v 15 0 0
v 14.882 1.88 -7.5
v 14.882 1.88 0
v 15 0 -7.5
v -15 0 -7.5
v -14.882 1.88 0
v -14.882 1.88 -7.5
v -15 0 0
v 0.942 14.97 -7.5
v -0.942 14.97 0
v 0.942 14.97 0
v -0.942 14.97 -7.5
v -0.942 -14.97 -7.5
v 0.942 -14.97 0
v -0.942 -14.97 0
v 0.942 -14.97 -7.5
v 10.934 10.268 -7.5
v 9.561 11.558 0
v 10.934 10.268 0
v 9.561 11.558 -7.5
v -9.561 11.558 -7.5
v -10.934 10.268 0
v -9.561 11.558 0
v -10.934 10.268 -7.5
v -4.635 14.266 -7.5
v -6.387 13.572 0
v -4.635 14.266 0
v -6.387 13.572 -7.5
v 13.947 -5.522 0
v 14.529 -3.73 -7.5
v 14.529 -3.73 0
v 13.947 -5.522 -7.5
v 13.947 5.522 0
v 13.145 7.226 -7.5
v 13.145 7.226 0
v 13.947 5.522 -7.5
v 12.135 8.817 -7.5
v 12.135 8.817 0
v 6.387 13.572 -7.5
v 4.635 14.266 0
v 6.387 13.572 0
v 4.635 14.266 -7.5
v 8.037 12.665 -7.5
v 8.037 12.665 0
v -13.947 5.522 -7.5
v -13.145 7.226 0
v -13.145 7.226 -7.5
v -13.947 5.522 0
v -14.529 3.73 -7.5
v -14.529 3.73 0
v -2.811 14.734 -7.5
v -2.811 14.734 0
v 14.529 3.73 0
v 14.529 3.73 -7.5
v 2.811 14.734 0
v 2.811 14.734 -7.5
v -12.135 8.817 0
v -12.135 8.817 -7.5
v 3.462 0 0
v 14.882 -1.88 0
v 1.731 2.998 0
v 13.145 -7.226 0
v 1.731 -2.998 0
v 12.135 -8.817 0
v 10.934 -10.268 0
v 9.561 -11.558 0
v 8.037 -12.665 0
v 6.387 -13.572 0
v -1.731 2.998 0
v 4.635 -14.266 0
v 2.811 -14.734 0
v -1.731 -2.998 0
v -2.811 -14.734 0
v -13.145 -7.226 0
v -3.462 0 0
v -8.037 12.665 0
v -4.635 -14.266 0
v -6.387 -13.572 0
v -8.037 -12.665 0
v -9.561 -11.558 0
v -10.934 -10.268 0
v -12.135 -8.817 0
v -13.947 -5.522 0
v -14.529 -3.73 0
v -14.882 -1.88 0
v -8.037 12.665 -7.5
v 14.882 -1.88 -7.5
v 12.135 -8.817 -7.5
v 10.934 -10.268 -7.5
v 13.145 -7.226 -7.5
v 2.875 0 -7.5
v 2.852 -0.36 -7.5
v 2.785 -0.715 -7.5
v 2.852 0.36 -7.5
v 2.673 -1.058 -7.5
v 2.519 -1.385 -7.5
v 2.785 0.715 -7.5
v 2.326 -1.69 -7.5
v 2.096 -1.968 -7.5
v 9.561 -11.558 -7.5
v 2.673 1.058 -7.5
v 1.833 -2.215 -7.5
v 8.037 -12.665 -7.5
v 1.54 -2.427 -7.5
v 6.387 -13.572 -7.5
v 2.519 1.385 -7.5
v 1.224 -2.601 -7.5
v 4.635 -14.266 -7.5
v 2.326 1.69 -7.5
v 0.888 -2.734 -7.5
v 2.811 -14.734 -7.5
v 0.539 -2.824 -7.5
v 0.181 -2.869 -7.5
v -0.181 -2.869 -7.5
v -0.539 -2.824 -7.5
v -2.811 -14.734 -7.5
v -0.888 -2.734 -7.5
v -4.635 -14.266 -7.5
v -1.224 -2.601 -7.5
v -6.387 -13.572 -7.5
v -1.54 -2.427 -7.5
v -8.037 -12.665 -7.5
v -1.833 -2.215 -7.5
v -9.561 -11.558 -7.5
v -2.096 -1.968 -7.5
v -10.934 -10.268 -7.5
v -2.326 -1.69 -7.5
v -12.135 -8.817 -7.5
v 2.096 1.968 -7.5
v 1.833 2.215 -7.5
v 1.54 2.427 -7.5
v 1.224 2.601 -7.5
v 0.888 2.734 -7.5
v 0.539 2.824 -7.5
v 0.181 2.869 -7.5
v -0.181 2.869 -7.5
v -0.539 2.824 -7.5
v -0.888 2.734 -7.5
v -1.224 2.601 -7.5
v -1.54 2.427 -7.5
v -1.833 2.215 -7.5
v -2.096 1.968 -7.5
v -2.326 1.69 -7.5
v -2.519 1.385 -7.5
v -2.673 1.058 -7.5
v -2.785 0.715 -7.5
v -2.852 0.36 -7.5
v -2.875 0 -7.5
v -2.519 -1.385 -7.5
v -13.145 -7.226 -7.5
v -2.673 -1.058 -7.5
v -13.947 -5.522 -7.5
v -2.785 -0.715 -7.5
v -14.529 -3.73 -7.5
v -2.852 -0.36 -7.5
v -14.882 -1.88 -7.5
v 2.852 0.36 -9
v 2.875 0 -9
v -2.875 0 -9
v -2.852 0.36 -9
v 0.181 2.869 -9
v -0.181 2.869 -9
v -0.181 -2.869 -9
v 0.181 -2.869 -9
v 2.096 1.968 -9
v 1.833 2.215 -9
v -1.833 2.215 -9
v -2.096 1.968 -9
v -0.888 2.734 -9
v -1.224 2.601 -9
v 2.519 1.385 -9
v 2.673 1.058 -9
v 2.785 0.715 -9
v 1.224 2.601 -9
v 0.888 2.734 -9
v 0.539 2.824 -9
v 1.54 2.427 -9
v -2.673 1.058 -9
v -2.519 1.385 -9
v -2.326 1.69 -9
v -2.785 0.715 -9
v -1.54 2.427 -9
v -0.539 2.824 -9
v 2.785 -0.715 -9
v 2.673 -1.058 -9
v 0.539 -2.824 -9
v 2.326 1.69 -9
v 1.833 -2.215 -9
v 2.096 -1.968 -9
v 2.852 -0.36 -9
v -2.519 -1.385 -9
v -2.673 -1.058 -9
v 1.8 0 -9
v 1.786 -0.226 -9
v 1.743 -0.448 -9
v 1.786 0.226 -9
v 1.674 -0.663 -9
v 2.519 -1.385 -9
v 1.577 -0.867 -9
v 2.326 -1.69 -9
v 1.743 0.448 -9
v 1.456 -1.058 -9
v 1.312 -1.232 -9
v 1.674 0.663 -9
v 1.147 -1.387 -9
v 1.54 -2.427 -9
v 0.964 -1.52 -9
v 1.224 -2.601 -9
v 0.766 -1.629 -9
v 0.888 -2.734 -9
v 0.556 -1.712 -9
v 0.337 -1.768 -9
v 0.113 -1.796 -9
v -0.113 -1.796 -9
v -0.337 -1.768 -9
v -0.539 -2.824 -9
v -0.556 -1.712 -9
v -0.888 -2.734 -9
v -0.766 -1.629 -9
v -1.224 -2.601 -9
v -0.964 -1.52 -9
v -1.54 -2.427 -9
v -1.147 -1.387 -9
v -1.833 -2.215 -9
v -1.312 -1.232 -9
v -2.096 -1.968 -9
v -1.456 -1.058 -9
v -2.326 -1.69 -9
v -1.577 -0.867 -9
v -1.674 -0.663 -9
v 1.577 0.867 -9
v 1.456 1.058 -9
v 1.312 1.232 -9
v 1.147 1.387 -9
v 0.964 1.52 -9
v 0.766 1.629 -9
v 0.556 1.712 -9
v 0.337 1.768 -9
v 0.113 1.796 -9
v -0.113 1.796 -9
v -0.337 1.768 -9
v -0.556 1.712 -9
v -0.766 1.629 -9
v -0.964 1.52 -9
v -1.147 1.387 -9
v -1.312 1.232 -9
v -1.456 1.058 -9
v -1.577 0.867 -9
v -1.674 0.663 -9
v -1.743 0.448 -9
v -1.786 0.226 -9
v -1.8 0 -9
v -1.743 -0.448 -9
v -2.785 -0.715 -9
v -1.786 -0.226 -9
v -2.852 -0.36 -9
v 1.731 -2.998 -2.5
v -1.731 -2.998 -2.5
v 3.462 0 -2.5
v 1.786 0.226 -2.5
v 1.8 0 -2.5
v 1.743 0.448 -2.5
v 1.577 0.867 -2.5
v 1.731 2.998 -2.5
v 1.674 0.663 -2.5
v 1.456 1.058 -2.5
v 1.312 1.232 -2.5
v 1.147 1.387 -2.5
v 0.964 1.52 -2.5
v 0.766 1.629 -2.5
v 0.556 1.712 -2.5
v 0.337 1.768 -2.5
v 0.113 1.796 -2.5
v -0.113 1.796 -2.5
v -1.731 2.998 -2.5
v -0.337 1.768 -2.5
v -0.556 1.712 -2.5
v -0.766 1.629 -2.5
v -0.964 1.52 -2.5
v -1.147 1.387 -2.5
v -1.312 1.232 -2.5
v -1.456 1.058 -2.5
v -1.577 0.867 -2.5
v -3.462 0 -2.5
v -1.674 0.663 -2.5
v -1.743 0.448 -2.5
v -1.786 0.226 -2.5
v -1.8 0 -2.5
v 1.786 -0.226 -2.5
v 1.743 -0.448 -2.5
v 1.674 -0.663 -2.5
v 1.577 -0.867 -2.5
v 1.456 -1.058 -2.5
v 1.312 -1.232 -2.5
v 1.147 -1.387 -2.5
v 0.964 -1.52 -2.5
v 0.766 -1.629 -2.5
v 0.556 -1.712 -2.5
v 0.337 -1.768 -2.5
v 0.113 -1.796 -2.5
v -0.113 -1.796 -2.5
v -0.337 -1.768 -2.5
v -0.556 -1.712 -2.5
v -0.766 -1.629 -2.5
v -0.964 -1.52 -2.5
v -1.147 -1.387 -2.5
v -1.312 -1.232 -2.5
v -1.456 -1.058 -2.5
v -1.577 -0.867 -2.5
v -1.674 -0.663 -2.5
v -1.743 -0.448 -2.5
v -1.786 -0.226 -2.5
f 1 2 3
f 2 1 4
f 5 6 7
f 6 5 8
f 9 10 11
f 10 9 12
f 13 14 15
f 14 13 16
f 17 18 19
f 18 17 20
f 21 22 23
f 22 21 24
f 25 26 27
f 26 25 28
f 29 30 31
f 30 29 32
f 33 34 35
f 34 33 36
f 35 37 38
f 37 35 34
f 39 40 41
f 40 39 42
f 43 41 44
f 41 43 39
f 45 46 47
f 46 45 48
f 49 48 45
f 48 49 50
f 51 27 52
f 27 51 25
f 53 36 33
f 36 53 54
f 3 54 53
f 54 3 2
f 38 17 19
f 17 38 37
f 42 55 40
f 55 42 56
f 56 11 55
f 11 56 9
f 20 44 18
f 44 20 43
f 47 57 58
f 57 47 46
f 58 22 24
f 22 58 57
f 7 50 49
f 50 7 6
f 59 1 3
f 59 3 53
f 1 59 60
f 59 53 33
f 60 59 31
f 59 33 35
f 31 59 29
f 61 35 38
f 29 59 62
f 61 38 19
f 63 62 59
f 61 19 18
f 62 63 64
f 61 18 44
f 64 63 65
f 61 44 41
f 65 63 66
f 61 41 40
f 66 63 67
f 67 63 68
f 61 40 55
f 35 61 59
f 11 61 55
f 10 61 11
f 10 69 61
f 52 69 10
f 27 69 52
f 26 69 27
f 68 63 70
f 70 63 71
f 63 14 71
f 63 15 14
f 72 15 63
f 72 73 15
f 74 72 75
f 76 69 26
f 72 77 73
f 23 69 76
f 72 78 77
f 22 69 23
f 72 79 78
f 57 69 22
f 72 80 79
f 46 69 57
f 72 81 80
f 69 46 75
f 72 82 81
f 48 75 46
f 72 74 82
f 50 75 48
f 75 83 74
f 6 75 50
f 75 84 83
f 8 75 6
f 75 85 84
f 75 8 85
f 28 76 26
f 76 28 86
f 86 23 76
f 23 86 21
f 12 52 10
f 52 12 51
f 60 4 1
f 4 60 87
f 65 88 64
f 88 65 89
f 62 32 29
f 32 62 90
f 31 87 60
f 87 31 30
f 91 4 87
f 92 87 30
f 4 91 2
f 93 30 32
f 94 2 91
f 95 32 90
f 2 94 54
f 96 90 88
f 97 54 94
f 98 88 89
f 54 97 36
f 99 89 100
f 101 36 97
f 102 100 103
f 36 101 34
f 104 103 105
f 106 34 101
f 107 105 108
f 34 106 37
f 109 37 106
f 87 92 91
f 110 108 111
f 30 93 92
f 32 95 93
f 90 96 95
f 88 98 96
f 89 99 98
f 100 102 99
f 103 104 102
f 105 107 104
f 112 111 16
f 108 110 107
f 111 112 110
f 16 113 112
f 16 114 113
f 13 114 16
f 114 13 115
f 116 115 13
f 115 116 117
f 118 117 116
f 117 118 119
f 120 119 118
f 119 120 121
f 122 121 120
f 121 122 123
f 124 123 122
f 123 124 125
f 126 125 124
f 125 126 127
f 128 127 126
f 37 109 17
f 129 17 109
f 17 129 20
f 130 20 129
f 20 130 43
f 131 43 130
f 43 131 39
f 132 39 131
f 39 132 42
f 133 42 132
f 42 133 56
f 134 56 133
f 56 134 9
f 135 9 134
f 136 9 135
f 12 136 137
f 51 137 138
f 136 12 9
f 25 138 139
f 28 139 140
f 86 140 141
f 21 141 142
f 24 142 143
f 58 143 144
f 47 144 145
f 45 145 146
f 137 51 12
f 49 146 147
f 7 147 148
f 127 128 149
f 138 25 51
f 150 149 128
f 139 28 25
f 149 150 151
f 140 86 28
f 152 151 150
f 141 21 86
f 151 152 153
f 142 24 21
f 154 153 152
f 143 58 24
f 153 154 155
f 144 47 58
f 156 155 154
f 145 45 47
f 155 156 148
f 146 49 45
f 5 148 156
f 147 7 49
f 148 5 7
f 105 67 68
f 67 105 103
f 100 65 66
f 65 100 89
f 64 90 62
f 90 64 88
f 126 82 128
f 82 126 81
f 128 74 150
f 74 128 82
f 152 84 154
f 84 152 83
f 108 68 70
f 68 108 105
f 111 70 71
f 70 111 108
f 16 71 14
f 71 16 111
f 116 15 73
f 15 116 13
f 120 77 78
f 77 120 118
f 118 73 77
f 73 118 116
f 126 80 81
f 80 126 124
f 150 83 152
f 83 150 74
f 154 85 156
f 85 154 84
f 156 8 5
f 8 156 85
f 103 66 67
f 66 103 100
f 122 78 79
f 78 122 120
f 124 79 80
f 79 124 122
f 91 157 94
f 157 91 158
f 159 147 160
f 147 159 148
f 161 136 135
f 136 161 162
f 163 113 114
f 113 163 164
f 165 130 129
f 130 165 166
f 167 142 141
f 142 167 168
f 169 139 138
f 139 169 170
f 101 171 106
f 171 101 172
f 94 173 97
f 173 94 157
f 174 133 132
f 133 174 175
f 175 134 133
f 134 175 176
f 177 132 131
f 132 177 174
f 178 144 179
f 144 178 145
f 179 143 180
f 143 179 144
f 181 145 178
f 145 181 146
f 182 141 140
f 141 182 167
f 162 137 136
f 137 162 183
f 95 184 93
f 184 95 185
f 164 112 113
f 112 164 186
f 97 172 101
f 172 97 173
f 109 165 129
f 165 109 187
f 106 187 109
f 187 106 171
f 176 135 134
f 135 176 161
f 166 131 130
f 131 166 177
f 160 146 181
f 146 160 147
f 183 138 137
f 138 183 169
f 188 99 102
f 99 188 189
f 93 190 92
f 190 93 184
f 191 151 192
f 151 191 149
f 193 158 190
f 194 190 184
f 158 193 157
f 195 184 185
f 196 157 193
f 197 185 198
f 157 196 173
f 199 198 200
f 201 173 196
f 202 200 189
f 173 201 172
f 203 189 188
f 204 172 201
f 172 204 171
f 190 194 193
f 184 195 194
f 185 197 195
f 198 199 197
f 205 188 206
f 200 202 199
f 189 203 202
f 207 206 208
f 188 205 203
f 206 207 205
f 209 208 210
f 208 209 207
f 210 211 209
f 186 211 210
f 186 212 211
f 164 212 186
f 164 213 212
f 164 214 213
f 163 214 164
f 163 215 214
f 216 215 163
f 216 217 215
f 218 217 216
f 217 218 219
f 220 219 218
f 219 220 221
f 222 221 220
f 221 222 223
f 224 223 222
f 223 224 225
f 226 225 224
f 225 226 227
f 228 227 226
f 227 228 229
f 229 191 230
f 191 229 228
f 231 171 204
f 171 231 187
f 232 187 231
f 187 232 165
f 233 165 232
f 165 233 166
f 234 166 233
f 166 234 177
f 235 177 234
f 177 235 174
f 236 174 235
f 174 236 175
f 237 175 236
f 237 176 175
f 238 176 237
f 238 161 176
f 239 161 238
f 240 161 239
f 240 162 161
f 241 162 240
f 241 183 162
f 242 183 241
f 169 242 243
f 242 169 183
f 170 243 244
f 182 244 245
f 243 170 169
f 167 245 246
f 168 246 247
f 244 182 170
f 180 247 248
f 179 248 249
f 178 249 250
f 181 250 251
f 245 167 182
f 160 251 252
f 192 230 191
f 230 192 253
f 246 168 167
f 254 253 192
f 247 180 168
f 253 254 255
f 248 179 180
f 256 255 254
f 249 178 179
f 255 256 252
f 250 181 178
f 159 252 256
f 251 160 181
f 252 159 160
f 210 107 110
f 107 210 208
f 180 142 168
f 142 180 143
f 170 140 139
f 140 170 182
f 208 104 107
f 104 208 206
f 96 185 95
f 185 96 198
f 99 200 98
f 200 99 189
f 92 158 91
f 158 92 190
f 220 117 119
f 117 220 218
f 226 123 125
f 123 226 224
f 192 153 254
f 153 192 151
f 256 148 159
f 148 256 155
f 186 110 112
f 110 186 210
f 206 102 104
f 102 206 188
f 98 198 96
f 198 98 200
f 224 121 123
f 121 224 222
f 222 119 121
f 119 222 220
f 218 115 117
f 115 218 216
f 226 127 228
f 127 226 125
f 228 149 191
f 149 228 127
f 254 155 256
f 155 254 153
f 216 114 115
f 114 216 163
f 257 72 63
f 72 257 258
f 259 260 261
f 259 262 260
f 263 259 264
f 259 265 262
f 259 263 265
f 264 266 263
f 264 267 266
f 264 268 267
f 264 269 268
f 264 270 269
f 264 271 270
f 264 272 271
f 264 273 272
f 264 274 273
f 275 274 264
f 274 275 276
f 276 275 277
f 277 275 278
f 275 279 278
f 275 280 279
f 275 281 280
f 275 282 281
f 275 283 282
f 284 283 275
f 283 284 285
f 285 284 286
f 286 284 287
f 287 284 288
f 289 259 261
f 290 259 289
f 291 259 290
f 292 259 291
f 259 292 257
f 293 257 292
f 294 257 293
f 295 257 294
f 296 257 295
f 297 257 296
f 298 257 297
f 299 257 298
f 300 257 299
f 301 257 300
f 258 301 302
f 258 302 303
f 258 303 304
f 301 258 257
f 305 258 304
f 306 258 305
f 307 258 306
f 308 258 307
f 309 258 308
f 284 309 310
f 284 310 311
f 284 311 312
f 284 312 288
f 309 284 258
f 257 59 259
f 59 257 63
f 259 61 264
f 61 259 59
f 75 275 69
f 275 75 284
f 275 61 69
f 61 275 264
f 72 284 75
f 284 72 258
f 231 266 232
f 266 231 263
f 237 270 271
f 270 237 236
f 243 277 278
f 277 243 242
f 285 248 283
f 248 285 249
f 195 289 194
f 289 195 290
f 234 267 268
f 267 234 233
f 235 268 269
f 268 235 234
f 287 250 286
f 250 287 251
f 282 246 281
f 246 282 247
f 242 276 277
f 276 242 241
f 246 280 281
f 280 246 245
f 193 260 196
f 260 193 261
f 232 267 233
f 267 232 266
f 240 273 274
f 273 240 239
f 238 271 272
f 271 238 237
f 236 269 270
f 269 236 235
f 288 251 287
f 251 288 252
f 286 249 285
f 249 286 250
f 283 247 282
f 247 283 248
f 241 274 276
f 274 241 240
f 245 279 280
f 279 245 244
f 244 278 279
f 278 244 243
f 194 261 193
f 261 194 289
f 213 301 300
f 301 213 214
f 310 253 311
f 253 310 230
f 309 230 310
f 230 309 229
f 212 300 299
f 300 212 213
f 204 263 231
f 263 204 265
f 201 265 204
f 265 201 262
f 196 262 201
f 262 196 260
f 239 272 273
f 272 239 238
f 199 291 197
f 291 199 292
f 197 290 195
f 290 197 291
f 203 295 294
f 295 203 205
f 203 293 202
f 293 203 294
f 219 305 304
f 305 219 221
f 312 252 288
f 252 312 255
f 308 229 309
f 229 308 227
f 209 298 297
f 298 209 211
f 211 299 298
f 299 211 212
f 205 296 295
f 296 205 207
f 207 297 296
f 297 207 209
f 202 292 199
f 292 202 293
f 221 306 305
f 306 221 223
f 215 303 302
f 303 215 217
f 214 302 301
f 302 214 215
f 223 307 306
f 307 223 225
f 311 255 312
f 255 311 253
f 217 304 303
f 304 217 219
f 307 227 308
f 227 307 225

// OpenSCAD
$fn = 50;


difference() {
	union() {
		translate(v = [0, 0, -7.5000000000]) {
			cylinder(h = 7.5000000000, r = 15.0000000000);
		}
		translate(v = [0, 0, -9.0000000000]) {
			cylinder(h = 9, r = 2.8750000000);
		}
	}
	union() {
		translate(v = [0, 0, 0]) {
			rotate(a = [0, 0, 0]) {
				difference() {
					union() {
						translate(v = [0, 0, -2.5000000000]) {
							linear_extrude(height = 2.5000000000) {
								polygon(points = [[3.4620000000, 0.0000000000], [1.7310000000, 2.9981799479], [-1.7310000000, 2.9981799479], [-3.4620000000, 0.0000000000], [-1.7310000000, -2.9981799479], [1.7310000000, -2.9981799479]]);
							}
						}
					}
					union();
				}
			}
		}
		#translate(v = [0, 0, -100.0000000000]) {
			cylinder(h = 200, r = 1.8000000000);
		}
	}
}
